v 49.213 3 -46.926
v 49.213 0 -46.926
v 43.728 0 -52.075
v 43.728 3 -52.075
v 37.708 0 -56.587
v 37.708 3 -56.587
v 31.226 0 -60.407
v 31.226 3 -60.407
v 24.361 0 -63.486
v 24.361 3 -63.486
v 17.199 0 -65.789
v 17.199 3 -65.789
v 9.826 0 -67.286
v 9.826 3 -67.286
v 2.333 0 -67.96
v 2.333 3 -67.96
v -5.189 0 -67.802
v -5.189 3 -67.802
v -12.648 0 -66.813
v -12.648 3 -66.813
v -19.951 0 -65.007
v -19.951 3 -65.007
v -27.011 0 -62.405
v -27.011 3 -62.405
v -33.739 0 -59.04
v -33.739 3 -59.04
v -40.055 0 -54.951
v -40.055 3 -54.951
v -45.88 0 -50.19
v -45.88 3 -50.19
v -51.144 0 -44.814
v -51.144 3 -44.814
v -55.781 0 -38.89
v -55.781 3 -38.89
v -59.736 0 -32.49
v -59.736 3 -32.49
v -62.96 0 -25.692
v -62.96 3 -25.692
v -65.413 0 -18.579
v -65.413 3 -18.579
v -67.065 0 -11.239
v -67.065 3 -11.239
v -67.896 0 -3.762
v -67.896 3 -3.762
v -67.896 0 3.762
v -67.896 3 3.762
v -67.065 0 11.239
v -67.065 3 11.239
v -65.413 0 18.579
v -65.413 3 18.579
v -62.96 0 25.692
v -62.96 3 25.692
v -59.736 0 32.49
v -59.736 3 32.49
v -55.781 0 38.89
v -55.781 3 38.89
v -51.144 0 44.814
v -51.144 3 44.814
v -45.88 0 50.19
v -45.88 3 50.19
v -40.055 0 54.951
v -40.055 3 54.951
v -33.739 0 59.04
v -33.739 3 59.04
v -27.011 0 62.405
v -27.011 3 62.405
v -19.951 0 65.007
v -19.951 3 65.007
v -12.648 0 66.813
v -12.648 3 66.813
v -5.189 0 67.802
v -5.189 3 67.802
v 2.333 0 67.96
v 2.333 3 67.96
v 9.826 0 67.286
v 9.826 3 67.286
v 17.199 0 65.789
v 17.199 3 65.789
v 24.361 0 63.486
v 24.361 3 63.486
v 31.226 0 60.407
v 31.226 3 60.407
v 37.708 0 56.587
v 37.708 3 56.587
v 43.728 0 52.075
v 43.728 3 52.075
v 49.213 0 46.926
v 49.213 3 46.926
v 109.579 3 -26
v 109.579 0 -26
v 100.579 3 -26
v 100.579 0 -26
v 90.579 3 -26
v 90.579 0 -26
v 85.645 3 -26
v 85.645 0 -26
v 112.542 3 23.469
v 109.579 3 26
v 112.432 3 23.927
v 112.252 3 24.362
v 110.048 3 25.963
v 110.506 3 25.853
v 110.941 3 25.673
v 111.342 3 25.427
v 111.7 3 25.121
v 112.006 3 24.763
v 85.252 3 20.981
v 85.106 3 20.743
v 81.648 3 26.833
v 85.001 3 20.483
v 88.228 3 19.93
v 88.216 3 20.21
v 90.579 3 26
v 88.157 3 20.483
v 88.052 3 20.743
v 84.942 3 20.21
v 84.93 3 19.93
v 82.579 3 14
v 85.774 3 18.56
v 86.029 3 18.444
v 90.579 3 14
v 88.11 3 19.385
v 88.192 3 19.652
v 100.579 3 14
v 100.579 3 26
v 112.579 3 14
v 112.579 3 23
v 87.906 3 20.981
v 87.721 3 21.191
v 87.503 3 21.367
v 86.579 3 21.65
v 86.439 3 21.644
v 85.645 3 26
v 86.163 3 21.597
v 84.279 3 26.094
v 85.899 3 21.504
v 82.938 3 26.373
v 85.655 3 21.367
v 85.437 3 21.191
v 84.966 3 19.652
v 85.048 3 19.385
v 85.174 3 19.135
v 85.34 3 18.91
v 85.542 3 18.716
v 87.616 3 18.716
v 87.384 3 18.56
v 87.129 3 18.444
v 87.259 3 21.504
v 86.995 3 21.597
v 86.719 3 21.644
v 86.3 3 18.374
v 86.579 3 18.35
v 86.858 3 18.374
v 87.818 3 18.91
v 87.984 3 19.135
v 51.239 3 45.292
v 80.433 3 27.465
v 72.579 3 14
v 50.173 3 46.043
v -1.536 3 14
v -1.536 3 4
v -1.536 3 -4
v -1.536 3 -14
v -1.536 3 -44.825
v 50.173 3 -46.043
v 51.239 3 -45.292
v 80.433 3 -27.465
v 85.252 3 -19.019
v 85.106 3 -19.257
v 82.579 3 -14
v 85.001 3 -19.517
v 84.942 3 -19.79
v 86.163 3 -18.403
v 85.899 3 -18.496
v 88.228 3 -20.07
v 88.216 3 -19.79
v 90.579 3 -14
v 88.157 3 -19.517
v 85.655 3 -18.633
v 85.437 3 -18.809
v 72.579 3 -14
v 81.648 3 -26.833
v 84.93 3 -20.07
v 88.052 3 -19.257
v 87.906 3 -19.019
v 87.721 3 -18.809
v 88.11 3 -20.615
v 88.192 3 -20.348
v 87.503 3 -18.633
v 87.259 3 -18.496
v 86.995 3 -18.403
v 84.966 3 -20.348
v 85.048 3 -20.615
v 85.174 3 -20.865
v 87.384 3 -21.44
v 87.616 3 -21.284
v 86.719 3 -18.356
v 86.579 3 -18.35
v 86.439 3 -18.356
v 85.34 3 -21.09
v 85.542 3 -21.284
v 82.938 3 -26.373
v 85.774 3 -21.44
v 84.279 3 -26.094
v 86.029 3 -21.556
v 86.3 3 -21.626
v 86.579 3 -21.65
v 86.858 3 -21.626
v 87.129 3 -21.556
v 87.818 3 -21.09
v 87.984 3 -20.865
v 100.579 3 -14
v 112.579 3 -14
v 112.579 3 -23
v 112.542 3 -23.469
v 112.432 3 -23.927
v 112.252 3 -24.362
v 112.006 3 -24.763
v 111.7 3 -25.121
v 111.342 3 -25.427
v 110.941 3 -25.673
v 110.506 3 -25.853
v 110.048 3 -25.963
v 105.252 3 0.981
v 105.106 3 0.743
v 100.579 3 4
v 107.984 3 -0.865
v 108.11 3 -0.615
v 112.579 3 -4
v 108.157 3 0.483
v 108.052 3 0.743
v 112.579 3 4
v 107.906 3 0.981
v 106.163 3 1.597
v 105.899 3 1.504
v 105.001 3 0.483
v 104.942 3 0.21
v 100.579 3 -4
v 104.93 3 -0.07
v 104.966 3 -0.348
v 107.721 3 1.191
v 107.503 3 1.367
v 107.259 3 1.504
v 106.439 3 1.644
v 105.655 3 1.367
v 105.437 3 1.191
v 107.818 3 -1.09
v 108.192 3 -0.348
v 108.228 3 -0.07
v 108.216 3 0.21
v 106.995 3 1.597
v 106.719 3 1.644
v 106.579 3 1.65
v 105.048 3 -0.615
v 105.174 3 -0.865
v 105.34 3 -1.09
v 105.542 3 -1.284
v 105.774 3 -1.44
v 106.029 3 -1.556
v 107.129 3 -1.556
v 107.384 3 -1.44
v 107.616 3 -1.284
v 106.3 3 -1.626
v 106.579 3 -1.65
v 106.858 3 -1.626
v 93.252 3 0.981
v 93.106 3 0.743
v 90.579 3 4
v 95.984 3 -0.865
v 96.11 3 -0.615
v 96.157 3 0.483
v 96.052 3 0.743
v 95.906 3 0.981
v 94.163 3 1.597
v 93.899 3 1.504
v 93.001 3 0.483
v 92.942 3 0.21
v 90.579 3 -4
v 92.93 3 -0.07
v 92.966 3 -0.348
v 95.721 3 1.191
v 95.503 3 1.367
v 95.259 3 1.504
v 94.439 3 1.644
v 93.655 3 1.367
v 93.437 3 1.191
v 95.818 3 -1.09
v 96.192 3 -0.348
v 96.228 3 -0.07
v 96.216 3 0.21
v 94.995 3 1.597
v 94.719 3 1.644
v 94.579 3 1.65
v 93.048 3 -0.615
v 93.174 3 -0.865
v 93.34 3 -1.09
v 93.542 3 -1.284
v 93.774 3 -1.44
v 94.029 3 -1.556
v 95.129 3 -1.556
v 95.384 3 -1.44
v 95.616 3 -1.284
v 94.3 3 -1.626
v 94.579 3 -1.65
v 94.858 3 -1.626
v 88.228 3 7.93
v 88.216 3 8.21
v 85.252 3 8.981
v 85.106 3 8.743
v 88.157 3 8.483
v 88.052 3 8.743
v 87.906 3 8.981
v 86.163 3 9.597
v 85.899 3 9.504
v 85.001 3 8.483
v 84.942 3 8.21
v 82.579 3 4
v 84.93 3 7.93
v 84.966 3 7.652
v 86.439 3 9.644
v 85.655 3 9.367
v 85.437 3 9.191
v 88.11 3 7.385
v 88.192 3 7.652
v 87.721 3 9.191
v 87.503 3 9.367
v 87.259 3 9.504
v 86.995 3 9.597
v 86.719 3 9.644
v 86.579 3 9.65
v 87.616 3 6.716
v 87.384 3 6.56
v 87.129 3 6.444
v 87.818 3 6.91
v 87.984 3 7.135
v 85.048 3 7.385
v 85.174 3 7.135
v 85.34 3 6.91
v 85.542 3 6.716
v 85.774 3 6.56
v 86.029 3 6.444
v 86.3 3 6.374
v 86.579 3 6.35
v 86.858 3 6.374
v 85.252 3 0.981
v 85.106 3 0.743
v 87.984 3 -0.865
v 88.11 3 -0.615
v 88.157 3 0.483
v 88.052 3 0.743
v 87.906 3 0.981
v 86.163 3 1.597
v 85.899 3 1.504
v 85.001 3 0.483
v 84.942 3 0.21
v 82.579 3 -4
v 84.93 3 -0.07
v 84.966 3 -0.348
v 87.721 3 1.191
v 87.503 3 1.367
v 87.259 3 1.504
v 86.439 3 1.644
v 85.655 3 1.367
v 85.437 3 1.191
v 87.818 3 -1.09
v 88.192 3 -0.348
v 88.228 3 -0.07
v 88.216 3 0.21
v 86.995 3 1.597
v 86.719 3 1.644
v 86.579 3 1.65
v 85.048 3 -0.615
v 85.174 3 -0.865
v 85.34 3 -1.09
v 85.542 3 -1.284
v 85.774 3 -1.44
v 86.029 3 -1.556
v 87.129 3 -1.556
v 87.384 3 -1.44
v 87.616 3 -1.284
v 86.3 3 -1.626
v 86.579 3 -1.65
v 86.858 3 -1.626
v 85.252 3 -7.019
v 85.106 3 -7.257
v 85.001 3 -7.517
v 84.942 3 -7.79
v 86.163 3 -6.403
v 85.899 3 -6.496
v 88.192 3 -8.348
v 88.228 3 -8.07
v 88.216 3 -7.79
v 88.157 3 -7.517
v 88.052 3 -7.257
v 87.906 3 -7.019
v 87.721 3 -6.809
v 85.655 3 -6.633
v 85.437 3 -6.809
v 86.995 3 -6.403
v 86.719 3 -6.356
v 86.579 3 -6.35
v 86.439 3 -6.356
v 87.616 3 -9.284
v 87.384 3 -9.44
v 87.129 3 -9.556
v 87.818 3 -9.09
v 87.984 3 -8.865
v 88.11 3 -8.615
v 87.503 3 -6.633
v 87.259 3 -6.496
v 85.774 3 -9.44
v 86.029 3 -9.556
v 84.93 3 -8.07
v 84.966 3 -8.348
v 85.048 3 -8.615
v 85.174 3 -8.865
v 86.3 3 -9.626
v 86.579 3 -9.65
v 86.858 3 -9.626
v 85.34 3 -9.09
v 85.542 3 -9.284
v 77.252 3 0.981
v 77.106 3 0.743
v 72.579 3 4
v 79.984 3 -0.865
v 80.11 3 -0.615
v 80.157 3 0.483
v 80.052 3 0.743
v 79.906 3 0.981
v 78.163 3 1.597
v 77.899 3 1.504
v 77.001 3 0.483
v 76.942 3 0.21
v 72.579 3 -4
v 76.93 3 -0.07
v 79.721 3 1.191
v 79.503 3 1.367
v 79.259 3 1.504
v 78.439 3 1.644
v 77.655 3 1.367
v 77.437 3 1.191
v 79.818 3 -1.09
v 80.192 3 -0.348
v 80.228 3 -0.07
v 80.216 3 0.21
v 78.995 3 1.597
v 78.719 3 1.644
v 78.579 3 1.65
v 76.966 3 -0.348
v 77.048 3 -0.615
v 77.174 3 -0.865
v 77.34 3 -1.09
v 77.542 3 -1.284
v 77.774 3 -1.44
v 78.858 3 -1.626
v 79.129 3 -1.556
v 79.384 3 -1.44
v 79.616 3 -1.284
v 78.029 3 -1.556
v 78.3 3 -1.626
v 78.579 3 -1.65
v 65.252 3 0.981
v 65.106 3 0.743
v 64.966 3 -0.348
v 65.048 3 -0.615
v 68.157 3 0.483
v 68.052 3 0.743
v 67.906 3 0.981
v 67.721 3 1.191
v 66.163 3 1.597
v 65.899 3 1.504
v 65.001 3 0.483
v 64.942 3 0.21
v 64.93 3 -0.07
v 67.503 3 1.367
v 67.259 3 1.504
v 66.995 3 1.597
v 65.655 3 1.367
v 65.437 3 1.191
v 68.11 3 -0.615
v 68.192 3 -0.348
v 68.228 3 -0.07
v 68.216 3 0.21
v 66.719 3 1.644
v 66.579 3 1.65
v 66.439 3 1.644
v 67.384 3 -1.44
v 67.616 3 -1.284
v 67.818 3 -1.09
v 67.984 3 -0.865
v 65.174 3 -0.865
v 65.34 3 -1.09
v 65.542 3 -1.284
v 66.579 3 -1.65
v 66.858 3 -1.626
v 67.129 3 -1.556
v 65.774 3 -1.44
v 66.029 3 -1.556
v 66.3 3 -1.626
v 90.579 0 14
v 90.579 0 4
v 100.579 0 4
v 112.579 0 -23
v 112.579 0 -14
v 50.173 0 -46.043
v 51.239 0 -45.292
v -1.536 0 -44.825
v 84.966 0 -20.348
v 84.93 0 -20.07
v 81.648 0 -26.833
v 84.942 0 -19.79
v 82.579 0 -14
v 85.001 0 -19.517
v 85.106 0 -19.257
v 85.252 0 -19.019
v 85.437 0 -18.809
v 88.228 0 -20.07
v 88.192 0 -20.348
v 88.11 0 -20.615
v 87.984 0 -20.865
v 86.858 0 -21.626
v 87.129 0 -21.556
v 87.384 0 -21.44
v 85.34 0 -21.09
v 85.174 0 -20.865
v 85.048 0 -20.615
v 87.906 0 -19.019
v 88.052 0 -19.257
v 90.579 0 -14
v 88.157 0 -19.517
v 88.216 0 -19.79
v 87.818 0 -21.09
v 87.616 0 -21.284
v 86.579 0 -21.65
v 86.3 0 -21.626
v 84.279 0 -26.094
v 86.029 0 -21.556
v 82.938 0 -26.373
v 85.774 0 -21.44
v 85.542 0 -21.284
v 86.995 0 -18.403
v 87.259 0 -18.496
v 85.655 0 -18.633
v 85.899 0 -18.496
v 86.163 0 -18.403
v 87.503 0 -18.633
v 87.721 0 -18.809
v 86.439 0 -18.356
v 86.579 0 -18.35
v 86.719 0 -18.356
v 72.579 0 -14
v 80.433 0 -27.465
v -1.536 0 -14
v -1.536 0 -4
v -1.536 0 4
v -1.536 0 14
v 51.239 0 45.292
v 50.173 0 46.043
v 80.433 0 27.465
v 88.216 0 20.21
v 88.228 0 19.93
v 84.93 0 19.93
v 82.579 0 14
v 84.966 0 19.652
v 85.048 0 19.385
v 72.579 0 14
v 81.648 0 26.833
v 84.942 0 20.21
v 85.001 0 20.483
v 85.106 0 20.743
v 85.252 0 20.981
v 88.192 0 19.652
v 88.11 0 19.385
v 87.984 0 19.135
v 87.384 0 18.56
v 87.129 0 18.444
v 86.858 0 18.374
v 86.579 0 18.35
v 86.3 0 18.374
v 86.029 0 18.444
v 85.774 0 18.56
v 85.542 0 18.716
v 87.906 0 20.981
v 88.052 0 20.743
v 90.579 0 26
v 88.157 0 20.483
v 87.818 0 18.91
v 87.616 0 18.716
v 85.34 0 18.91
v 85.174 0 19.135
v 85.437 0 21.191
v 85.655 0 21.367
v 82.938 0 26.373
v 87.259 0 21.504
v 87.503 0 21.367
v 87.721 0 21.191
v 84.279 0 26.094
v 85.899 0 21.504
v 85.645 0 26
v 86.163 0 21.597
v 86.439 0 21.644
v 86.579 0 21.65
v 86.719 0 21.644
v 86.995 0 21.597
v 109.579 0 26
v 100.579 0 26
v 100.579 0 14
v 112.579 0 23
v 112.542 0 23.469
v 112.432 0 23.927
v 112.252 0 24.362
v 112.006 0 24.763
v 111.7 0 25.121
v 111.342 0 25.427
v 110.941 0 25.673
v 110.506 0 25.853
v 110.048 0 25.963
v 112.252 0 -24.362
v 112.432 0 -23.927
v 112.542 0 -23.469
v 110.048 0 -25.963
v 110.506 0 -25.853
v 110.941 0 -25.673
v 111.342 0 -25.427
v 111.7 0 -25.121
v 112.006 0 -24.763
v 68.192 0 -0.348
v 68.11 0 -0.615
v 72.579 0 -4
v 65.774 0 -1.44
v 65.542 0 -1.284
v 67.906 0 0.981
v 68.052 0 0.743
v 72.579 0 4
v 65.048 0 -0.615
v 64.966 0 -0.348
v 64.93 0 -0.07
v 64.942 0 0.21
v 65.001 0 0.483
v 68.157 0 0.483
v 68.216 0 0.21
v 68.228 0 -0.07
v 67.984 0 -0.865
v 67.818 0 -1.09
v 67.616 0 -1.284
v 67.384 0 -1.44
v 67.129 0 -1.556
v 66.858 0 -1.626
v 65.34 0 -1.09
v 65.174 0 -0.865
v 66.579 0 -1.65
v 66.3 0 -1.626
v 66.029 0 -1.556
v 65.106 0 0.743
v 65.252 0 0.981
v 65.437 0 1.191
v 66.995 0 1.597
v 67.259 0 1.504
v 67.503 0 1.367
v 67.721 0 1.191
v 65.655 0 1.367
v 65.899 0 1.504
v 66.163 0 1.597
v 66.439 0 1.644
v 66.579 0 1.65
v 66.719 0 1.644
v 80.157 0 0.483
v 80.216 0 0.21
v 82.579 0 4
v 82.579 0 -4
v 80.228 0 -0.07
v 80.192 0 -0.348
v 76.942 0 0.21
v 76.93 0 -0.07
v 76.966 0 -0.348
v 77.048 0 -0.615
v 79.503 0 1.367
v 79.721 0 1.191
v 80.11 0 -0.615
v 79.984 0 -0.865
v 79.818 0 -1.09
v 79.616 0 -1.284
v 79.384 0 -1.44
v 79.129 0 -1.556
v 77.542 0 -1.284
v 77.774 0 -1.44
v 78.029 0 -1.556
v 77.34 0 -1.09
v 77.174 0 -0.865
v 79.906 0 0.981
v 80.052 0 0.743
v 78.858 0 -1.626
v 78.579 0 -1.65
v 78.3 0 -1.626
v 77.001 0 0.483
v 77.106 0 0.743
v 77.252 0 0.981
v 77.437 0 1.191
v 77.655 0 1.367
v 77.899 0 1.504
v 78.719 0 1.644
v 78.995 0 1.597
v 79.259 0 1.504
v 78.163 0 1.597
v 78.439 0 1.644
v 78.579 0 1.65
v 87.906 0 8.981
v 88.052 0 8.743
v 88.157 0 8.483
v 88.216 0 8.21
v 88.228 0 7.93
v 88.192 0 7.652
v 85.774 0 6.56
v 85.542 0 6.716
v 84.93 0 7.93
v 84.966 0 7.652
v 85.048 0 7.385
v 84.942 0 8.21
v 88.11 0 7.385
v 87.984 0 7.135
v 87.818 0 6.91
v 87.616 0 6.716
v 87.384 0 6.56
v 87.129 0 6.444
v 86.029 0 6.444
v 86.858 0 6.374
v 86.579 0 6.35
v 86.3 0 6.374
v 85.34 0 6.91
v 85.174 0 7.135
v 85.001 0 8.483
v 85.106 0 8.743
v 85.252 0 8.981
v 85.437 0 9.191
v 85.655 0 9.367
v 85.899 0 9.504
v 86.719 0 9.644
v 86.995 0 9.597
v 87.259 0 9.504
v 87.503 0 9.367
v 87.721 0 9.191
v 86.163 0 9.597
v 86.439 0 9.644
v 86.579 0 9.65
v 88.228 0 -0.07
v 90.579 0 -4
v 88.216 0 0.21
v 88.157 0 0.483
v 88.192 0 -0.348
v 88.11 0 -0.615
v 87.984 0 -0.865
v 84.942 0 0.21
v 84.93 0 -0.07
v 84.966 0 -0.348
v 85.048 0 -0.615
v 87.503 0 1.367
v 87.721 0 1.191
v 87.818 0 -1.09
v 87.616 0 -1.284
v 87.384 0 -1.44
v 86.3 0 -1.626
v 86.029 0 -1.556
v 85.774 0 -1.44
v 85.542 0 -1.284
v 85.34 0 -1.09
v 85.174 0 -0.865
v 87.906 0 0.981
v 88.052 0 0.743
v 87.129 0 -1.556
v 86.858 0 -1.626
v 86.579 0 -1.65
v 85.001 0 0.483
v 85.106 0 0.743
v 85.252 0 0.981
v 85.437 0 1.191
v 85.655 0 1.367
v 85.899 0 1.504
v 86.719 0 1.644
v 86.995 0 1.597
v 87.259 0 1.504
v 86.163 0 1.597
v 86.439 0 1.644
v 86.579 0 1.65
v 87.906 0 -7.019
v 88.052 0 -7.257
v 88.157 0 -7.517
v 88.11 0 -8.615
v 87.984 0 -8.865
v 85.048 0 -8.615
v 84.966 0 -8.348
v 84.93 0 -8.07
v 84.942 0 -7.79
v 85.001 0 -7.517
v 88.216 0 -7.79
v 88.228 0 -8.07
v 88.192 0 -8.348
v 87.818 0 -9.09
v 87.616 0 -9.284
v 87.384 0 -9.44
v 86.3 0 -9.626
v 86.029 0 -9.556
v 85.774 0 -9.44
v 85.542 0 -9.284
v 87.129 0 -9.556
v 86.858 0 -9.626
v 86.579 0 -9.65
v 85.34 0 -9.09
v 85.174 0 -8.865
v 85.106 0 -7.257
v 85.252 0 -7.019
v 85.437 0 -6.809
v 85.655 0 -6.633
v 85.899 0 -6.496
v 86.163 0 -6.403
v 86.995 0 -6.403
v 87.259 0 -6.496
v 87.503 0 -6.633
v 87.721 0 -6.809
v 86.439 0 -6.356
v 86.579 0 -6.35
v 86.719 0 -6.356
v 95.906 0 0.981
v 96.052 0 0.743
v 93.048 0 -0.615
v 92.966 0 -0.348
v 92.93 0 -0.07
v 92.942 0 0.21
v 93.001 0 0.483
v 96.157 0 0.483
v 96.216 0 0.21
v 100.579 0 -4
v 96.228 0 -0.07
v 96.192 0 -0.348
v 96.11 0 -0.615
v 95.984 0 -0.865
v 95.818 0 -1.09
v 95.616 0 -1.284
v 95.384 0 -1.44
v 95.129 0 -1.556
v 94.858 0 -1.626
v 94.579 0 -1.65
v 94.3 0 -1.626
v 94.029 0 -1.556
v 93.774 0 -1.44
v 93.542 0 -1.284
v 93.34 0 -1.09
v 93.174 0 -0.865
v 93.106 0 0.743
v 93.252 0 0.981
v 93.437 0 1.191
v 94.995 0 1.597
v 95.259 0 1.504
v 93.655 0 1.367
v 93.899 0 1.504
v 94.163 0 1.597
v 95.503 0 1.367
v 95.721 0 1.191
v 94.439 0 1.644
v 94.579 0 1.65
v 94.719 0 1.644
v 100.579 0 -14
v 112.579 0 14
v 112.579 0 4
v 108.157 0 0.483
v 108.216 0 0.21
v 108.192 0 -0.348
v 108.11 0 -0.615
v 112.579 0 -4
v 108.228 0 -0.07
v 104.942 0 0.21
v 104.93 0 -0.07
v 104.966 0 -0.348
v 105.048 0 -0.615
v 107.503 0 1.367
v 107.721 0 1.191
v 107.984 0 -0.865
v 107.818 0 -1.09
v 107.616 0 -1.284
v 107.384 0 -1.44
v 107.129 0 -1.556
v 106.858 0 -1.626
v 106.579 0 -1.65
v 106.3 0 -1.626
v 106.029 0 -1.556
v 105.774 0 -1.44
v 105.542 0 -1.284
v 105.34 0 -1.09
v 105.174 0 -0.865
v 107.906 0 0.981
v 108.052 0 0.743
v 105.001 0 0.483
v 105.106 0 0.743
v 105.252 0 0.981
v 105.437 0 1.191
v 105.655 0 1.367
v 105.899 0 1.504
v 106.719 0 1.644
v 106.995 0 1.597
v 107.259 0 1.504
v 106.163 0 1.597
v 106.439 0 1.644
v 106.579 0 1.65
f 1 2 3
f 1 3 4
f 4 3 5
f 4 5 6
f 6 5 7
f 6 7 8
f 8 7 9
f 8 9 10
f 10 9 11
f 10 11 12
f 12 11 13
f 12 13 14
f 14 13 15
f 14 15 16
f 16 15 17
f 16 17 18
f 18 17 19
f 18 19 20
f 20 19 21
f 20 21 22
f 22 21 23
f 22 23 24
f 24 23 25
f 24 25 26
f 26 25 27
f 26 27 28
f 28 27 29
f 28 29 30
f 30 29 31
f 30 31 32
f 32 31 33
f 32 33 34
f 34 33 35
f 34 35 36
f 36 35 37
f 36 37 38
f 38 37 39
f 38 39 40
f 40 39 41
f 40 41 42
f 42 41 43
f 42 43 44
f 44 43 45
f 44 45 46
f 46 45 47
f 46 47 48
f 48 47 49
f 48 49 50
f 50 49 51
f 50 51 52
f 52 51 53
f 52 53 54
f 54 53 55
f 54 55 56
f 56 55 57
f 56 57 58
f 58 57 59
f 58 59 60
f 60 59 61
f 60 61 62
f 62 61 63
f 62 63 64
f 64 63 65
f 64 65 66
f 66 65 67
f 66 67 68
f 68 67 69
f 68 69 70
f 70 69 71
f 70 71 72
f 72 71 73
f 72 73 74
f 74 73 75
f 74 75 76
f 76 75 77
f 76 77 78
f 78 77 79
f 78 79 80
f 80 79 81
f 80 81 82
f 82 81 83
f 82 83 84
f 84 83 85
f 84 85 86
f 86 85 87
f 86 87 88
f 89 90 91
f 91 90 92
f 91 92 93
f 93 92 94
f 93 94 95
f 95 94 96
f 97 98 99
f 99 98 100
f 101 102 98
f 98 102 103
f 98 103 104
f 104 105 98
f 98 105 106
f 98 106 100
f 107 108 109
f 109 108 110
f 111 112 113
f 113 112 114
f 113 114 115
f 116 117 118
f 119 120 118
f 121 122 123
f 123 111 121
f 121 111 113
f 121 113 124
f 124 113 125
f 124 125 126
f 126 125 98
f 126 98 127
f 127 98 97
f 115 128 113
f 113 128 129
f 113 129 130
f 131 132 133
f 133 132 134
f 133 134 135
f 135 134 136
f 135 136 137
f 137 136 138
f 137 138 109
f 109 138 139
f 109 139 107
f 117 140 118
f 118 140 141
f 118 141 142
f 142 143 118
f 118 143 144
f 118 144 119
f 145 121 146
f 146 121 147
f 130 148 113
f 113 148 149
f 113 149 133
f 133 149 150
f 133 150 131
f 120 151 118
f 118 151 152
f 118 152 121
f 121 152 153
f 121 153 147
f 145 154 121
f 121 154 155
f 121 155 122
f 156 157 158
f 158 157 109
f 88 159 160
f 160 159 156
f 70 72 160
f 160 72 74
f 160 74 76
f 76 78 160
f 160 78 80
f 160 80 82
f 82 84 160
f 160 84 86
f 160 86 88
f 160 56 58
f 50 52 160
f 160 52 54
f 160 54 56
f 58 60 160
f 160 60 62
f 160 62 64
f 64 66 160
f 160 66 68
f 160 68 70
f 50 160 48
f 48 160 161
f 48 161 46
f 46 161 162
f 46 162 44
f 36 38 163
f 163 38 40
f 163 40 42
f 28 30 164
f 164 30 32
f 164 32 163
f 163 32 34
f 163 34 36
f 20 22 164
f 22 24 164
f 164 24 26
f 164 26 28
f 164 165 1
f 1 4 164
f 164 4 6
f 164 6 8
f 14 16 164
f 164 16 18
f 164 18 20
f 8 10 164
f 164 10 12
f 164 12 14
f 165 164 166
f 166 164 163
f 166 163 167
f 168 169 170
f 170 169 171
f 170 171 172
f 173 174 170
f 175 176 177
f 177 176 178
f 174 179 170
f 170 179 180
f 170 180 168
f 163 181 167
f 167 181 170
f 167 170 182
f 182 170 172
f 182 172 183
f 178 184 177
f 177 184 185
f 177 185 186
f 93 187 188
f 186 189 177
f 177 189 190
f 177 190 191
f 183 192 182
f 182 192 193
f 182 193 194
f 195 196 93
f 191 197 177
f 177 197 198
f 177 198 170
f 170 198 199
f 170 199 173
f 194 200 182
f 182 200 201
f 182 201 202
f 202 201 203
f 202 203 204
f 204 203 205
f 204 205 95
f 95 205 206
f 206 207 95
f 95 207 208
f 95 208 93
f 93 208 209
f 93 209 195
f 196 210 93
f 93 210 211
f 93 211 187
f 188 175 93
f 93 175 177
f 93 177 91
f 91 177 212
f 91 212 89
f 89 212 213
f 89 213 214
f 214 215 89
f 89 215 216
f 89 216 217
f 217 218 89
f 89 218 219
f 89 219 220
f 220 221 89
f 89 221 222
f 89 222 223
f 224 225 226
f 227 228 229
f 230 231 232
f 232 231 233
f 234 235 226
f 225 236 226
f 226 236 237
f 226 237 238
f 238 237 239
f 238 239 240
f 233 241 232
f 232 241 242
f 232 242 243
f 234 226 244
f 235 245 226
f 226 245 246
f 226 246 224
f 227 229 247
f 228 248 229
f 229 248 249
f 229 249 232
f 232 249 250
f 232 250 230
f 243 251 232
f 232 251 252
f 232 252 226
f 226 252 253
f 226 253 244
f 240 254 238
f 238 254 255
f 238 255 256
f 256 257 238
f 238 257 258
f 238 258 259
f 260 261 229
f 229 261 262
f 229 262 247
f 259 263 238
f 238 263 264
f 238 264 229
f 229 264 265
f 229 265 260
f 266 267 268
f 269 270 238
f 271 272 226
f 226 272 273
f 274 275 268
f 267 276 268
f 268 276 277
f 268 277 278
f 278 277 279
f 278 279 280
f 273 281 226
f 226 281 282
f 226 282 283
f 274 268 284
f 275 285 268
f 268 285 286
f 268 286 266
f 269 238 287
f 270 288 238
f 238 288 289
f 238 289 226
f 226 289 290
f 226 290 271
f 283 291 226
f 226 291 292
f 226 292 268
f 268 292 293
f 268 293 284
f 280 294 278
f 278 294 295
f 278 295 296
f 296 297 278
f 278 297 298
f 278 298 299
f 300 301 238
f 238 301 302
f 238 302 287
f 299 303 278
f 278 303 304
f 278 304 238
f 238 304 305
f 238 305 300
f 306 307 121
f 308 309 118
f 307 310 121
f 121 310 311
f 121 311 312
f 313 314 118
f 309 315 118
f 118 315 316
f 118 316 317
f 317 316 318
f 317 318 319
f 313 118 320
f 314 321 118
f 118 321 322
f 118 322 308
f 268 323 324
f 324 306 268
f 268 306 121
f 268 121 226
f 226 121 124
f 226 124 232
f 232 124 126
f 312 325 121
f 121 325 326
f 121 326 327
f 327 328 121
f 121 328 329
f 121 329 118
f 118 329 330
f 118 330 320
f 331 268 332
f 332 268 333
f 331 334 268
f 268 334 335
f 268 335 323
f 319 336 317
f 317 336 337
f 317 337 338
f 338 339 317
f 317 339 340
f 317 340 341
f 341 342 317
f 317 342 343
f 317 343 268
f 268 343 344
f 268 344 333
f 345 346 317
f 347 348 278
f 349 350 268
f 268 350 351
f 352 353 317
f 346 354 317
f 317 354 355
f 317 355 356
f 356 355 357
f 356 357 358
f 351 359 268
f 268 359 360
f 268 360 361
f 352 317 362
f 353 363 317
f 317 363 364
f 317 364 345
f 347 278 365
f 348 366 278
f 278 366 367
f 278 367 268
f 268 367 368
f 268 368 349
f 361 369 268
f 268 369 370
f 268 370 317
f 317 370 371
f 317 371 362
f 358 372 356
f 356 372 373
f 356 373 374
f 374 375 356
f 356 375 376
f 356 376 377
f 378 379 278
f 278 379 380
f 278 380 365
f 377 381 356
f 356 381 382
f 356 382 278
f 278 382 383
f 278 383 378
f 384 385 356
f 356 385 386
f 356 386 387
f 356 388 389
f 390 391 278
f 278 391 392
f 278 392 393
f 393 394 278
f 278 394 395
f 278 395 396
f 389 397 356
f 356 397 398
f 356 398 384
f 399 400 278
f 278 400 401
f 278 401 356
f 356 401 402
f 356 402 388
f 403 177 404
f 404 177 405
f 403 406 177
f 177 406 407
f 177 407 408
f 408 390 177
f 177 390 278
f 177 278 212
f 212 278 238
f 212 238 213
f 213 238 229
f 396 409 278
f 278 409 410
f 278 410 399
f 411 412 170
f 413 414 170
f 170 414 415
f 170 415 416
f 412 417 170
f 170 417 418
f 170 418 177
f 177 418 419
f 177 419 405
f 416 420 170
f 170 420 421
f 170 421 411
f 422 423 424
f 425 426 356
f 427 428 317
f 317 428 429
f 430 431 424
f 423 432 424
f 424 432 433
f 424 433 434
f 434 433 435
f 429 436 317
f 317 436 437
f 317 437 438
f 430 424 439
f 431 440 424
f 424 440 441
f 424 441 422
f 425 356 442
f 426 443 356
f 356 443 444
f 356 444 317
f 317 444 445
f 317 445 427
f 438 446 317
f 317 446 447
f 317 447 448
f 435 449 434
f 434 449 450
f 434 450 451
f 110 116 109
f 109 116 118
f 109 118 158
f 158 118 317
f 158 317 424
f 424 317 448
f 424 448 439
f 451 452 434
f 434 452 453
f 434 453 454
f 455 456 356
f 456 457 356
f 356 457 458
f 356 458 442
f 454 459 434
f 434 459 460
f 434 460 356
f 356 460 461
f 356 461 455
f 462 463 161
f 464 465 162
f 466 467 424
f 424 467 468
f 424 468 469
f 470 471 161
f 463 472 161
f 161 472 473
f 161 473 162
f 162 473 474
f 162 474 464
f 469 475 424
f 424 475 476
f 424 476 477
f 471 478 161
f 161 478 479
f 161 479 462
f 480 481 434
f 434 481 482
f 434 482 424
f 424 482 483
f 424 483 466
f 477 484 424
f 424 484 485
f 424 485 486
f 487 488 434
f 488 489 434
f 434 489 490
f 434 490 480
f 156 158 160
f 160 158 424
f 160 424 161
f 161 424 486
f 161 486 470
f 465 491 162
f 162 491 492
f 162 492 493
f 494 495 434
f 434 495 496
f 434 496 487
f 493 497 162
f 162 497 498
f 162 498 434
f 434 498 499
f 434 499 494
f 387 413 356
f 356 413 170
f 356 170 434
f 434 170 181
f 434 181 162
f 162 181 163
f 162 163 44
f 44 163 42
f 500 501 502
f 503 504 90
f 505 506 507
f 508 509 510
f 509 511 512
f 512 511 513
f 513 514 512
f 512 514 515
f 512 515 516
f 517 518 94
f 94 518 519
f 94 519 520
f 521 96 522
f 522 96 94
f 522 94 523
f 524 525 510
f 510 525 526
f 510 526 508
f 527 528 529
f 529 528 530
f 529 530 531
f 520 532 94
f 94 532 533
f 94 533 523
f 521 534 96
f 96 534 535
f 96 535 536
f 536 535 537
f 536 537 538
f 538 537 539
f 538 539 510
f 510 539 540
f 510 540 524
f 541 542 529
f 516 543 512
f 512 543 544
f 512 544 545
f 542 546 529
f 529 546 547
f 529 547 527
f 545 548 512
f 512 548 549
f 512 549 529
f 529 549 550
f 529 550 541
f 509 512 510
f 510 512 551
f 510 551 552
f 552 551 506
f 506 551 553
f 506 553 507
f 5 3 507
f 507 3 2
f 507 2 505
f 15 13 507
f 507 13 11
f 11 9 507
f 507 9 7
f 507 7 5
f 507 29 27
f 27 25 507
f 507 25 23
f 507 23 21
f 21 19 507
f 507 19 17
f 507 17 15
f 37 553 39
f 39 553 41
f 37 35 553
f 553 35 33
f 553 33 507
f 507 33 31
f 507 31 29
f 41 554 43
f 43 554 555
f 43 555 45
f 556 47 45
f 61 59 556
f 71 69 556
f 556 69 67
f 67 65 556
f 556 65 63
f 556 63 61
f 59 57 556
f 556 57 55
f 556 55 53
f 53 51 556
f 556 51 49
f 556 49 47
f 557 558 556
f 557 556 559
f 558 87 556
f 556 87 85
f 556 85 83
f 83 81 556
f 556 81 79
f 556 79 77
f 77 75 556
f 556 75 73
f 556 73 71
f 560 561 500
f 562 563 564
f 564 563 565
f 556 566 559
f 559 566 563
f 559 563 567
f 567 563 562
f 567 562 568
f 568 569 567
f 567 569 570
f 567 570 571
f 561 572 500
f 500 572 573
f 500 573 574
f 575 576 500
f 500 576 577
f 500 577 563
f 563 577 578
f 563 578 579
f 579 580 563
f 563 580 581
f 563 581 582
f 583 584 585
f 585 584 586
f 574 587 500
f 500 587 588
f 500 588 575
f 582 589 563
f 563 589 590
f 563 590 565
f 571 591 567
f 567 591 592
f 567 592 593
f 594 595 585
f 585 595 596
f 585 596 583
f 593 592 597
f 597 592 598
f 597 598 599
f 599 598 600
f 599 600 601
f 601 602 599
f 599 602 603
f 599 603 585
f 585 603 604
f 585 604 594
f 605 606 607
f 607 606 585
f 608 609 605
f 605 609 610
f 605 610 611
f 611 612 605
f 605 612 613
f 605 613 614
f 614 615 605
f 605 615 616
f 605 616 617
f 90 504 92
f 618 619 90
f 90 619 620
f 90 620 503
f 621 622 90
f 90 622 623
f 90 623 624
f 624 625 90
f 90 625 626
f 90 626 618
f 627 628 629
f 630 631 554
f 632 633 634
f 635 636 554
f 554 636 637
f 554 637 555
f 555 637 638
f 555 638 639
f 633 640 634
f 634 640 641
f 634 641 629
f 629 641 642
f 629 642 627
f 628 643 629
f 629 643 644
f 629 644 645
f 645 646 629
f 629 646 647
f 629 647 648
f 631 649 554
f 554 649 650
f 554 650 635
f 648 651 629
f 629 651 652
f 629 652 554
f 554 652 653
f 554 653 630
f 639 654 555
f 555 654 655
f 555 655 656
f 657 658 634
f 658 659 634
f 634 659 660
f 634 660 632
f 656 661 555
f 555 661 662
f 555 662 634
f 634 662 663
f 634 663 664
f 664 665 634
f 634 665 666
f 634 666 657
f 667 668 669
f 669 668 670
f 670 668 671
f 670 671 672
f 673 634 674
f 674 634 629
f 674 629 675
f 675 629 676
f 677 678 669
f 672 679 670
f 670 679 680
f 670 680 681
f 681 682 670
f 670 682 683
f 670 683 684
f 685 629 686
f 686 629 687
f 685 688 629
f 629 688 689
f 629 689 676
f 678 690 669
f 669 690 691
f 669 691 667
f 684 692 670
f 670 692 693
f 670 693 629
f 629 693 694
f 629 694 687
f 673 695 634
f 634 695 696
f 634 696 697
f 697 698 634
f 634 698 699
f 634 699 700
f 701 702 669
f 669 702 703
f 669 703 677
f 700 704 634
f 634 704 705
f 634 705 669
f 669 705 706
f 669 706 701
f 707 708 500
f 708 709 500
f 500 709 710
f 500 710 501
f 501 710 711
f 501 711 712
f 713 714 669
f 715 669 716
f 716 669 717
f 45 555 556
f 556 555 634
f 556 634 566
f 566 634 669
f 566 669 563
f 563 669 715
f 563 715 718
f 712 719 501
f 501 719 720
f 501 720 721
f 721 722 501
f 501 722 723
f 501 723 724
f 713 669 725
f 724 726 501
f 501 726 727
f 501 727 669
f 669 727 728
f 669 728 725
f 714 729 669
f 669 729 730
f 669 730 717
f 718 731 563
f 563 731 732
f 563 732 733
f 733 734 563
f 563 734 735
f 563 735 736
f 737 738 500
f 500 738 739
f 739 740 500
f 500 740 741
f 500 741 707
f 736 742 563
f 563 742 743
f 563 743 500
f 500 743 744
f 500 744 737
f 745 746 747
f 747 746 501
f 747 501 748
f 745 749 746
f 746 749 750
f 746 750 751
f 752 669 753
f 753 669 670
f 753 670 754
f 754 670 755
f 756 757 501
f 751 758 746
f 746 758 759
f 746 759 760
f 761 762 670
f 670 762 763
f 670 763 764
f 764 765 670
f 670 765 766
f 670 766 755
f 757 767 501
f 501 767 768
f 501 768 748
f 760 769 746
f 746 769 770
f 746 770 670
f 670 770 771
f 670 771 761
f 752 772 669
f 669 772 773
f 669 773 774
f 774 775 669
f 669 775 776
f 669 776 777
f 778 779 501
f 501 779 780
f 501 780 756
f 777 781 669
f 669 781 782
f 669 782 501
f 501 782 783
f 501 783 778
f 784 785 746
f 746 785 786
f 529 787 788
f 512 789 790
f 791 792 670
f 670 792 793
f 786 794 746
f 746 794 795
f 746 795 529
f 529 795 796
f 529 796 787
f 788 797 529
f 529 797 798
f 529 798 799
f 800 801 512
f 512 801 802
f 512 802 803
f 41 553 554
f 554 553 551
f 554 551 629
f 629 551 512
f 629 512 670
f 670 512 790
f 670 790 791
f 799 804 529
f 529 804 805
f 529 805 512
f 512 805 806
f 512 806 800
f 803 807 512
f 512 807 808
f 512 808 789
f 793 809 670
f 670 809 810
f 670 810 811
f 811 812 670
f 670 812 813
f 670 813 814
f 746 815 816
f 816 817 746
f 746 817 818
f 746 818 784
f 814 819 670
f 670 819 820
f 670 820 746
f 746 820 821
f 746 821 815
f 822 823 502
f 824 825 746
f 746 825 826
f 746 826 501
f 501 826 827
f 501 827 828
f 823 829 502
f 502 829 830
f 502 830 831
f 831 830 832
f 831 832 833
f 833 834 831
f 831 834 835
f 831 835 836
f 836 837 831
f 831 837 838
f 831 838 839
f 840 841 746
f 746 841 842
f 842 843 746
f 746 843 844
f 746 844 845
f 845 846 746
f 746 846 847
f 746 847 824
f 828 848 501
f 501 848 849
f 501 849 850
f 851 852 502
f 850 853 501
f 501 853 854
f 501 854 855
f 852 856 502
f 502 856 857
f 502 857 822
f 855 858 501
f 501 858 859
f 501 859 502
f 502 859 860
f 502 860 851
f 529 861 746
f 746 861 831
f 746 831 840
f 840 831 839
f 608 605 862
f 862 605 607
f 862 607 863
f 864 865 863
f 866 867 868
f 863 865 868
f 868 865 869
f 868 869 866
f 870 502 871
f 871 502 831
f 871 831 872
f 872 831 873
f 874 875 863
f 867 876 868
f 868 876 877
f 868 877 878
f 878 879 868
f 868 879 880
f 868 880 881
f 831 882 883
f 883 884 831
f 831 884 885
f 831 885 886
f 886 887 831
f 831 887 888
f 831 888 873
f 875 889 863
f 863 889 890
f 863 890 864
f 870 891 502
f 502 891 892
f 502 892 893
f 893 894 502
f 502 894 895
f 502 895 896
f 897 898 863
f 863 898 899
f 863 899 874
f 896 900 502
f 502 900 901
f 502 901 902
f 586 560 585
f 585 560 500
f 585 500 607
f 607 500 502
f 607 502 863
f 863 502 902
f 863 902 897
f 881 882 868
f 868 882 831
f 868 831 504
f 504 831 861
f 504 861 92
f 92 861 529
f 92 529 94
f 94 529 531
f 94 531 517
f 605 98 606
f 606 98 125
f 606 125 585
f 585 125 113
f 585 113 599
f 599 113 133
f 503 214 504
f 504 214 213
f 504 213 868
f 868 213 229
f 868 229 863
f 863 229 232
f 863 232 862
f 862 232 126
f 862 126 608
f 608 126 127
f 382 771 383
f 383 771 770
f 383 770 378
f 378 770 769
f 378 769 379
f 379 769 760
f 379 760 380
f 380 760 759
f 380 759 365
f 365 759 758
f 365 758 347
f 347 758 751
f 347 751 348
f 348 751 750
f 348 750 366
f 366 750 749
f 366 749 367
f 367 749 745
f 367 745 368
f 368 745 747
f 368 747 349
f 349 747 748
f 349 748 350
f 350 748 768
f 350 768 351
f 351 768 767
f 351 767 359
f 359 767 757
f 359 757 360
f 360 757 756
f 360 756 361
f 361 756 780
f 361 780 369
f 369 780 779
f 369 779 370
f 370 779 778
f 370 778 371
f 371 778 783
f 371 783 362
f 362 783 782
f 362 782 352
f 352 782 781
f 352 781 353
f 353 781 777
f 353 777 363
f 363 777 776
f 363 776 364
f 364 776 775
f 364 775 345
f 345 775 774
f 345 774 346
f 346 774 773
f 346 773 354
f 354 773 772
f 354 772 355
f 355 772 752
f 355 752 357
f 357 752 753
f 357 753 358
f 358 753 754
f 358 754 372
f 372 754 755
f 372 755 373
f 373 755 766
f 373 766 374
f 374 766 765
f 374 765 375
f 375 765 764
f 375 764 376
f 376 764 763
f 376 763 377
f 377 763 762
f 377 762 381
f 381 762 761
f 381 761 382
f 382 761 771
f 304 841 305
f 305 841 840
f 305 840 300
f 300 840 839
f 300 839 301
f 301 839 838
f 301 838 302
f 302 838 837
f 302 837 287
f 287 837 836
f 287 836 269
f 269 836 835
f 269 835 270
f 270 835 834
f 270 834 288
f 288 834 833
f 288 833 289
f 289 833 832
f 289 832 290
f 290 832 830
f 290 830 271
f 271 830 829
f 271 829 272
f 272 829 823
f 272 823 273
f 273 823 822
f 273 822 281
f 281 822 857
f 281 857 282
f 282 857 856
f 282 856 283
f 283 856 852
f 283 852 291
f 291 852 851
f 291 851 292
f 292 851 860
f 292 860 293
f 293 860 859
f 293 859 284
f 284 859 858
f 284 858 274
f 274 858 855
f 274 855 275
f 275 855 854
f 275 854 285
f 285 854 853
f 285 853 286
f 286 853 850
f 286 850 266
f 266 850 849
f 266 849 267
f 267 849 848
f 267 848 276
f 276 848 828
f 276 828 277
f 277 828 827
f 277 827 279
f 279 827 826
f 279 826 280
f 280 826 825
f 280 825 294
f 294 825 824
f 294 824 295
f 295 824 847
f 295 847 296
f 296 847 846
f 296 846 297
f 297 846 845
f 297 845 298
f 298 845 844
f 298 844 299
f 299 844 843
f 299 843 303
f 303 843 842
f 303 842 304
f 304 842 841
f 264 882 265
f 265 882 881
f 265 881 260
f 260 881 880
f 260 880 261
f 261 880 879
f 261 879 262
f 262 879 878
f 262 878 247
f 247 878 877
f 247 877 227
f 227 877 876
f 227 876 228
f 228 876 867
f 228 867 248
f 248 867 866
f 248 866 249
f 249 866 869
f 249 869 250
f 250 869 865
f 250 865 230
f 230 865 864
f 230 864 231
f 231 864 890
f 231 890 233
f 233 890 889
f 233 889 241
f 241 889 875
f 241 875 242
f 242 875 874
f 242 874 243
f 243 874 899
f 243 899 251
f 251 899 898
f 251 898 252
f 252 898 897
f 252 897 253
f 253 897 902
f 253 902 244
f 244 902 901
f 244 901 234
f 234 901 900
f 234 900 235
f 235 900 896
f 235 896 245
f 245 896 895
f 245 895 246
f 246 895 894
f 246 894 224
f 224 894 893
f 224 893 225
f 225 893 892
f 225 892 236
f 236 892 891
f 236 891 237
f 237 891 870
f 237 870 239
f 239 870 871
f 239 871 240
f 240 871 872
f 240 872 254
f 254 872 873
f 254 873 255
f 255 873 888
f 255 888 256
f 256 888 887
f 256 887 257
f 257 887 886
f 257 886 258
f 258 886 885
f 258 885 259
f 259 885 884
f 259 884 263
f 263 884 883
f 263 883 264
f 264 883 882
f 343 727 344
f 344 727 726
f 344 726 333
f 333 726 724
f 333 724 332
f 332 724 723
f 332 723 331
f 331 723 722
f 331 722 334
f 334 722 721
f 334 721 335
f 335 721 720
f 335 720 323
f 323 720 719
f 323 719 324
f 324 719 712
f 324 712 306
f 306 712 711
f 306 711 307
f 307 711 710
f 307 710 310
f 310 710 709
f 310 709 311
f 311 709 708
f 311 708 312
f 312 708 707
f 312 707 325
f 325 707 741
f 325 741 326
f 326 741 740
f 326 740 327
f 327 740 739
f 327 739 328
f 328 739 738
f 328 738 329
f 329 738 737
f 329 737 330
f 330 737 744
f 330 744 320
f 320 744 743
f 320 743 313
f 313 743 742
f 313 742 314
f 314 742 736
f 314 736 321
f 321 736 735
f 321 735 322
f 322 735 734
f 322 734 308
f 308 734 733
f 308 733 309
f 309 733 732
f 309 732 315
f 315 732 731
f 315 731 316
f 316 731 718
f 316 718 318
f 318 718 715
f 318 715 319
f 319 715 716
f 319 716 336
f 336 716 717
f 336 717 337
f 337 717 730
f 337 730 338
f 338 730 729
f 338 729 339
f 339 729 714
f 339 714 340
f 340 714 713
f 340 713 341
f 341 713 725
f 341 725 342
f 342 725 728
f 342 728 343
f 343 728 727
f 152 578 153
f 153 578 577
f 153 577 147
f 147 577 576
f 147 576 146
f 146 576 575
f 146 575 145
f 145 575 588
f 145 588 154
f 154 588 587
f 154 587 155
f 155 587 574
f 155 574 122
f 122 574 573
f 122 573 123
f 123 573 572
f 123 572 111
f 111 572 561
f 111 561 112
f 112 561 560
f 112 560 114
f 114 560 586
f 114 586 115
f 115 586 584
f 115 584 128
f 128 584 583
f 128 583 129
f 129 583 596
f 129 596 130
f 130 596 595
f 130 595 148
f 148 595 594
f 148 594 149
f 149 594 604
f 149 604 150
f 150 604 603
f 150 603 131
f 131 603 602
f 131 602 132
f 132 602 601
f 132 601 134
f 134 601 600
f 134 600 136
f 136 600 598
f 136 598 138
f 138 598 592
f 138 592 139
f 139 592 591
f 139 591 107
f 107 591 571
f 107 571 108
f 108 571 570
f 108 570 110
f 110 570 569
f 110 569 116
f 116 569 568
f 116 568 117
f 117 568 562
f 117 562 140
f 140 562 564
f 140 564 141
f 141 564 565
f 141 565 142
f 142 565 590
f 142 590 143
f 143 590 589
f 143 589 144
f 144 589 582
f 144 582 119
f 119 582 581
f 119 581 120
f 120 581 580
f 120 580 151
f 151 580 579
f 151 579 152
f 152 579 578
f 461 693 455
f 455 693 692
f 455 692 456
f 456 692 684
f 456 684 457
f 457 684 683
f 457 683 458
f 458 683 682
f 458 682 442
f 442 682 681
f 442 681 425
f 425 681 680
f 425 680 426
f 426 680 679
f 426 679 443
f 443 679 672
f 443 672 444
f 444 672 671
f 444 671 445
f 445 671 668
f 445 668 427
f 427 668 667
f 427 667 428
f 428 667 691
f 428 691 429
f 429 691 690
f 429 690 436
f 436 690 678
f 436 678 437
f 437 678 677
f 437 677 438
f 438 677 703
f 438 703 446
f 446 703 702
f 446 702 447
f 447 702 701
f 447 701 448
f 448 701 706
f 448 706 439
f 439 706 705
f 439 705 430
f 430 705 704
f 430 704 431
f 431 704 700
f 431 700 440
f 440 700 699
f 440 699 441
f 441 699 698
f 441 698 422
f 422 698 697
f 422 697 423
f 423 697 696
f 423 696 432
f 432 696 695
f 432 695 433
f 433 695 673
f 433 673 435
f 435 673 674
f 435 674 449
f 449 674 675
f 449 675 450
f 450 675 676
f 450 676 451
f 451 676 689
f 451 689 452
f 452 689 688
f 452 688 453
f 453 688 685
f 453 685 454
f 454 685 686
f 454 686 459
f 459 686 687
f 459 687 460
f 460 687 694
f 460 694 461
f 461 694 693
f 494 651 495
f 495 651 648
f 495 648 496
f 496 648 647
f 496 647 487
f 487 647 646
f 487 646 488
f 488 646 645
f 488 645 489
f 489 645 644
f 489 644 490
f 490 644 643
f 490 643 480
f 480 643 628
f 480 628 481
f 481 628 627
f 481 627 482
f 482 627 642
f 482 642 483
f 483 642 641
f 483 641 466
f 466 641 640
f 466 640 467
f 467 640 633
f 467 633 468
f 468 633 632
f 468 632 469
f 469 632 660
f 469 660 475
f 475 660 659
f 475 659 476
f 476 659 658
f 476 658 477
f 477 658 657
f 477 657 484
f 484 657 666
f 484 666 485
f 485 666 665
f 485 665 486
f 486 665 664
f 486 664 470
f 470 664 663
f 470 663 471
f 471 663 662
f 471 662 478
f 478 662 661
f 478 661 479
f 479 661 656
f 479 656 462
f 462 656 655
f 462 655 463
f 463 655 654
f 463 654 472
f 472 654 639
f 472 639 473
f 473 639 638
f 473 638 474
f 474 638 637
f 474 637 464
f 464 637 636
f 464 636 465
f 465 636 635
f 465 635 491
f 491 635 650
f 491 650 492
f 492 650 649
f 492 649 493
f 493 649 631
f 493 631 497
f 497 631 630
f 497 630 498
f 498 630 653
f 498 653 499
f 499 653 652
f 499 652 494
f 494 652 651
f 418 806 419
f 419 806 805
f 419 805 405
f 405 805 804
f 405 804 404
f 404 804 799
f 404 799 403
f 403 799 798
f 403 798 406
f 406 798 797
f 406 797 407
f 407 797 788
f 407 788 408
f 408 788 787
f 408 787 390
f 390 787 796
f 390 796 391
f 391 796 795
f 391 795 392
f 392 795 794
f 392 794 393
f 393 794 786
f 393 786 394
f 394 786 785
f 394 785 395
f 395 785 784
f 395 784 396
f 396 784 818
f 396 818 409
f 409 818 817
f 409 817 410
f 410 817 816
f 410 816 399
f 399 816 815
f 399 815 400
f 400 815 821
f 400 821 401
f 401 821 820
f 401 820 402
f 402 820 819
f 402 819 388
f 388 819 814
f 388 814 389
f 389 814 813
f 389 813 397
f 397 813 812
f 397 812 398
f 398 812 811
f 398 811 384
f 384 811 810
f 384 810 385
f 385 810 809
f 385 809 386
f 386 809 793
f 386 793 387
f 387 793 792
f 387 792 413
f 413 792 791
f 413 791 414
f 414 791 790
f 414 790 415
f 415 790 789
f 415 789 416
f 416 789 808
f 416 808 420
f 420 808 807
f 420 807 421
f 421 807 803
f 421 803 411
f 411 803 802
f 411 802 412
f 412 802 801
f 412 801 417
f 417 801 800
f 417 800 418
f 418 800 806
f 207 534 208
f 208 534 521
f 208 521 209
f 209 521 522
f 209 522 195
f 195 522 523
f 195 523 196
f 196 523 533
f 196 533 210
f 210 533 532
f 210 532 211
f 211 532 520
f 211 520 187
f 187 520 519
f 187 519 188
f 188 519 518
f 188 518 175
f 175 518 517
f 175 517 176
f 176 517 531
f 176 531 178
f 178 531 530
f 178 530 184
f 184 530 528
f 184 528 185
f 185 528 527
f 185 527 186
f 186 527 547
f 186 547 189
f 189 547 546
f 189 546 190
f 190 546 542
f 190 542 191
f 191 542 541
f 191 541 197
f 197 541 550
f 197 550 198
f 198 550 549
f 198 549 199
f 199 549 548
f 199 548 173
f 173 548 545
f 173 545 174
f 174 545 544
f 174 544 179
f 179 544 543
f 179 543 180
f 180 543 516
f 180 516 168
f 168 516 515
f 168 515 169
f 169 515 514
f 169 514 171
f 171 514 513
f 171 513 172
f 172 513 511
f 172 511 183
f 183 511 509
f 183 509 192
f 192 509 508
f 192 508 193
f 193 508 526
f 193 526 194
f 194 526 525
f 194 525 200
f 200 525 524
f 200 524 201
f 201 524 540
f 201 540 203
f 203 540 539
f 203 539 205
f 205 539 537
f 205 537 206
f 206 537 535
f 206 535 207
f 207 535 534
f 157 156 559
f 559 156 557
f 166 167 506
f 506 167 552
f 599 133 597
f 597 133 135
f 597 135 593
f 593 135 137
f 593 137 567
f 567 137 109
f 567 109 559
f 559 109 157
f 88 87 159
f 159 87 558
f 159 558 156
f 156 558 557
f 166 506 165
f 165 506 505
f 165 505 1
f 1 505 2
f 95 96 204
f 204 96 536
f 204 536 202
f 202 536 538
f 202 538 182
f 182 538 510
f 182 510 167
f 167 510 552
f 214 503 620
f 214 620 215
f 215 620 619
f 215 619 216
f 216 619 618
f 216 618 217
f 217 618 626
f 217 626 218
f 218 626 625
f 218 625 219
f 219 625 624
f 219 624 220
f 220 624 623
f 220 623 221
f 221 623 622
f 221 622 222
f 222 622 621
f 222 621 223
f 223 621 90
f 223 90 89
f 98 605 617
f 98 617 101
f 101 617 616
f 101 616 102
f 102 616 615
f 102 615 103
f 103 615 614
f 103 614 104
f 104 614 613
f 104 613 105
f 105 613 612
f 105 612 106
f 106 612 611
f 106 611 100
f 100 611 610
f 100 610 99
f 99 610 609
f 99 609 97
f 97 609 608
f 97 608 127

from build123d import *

# Parameters (mm, degrees)
SKETCH1_R           = 1.65
BOSS_EXTRUDE1_DEPTH = 3
BOSS_EXTRUDE2_START = -3
BOSS_EXTRUDE2_DEPTH = 3
FILLET1_R           = 10
FILLET2_R           = 3


with BuildPart() as part:
    # Sketch1 → Boss-Extrude1 (new body)
    with BuildSketch(Plane(origin=(0, 0, 0), x_dir=(1, 0, 0), z_dir=(0, 1, 0))):
        with BuildLine():
            Line((62.83311229, -26), (112.579, -26))
            Line((112.579, -26), (112.579, 26))
            Line((112.579, 26), (62.83311229, 26))
            ThreePointArc((62.83311229, 26), (-68, 0), (62.83311229, -26))
        make_face()
        with Locations(Location((86.579, 0, 0), (0, 0, 270))):
            Circle(SKETCH1_R, mode=Mode.SUBTRACT)
        with Locations(Location((94.579, 0, 0), (0, 0, 270))):
            Circle(SKETCH1_R, mode=Mode.SUBTRACT)
        with Locations(Location((106.579, 0, 0), (0, 0, 270))):
            Circle(SKETCH1_R, mode=Mode.SUBTRACT)
        with Locations(Location((86.579, -8, 0), (0, 0, 270))):
            Circle(SKETCH1_R, mode=Mode.SUBTRACT)
        with Locations(Location((86.579, -20, 0), (0, 0, 270))):
            Circle(SKETCH1_R, mode=Mode.SUBTRACT)
        with Locations(Location((78.579, 0, 0), (0, 0, 270))):
            Circle(SKETCH1_R, mode=Mode.SUBTRACT)
        with Locations(Location((66.579, 0, 0), (0, 0, 270))):
            Circle(SKETCH1_R, mode=Mode.SUBTRACT)
        with Locations(Location((86.579, 8, 0), (0, 0, 270))):
            Circle(SKETCH1_R, mode=Mode.SUBTRACT)
        with Locations(Location((86.579, 20, 0), (0, 0, 270))):
            Circle(SKETCH1_R, mode=Mode.SUBTRACT)
    extrude(amount=BOSS_EXTRUDE1_DEPTH)

    # Sketch2 → Boss-Extrude2 (add)
    with BuildSketch(Plane(origin=(0, 3, 0), x_dir=(1, 0, 0), z_dir=(0, 1, 0)).offset(BOSS_EXTRUDE2_START)):
        with BuildLine():
            ThreePointArc((62.83311229, -26), (57.335321786, -36.560373025), (50.079936102, -46))
            Line((50.079936102, -46), (82.83311229, -26))
            Line((82.83311229, -26), (62.83311229, -26))
        make_face()
        with BuildLine():
            Line((62.83311229, 26), (82.83311229, 26))
            Line((82.83311229, 26), (50.079936102, 46))
            ThreePointArc((50.079936102, 46), (57.335321786, 36.560373025), (62.83311229, 26))
        make_face()
    extrude(amount=BOSS_EXTRUDE2_DEPTH)

    # Fillet1
    fillet1_edges = [part.edges().sort_by_distance(p)[0] for p in [
        (50.079936102, 1.5, 46),
        (82.83311229, 1.5, 26),
        (50.079936102, 1.5, -46),
        (82.83311229, 1.5, -26),
    ]]
    fillet(fillet1_edges, radius=FILLET1_R)

    # Fillet2
    fillet2_edges = [part.edges().sort_by_distance(p)[0] for p in [
        (112.579, 1.5, -26),
        (112.579, 1.5, 26),
    ]]
    fillet(fillet2_edges, radius=FILLET2_R)


solid = part.part
